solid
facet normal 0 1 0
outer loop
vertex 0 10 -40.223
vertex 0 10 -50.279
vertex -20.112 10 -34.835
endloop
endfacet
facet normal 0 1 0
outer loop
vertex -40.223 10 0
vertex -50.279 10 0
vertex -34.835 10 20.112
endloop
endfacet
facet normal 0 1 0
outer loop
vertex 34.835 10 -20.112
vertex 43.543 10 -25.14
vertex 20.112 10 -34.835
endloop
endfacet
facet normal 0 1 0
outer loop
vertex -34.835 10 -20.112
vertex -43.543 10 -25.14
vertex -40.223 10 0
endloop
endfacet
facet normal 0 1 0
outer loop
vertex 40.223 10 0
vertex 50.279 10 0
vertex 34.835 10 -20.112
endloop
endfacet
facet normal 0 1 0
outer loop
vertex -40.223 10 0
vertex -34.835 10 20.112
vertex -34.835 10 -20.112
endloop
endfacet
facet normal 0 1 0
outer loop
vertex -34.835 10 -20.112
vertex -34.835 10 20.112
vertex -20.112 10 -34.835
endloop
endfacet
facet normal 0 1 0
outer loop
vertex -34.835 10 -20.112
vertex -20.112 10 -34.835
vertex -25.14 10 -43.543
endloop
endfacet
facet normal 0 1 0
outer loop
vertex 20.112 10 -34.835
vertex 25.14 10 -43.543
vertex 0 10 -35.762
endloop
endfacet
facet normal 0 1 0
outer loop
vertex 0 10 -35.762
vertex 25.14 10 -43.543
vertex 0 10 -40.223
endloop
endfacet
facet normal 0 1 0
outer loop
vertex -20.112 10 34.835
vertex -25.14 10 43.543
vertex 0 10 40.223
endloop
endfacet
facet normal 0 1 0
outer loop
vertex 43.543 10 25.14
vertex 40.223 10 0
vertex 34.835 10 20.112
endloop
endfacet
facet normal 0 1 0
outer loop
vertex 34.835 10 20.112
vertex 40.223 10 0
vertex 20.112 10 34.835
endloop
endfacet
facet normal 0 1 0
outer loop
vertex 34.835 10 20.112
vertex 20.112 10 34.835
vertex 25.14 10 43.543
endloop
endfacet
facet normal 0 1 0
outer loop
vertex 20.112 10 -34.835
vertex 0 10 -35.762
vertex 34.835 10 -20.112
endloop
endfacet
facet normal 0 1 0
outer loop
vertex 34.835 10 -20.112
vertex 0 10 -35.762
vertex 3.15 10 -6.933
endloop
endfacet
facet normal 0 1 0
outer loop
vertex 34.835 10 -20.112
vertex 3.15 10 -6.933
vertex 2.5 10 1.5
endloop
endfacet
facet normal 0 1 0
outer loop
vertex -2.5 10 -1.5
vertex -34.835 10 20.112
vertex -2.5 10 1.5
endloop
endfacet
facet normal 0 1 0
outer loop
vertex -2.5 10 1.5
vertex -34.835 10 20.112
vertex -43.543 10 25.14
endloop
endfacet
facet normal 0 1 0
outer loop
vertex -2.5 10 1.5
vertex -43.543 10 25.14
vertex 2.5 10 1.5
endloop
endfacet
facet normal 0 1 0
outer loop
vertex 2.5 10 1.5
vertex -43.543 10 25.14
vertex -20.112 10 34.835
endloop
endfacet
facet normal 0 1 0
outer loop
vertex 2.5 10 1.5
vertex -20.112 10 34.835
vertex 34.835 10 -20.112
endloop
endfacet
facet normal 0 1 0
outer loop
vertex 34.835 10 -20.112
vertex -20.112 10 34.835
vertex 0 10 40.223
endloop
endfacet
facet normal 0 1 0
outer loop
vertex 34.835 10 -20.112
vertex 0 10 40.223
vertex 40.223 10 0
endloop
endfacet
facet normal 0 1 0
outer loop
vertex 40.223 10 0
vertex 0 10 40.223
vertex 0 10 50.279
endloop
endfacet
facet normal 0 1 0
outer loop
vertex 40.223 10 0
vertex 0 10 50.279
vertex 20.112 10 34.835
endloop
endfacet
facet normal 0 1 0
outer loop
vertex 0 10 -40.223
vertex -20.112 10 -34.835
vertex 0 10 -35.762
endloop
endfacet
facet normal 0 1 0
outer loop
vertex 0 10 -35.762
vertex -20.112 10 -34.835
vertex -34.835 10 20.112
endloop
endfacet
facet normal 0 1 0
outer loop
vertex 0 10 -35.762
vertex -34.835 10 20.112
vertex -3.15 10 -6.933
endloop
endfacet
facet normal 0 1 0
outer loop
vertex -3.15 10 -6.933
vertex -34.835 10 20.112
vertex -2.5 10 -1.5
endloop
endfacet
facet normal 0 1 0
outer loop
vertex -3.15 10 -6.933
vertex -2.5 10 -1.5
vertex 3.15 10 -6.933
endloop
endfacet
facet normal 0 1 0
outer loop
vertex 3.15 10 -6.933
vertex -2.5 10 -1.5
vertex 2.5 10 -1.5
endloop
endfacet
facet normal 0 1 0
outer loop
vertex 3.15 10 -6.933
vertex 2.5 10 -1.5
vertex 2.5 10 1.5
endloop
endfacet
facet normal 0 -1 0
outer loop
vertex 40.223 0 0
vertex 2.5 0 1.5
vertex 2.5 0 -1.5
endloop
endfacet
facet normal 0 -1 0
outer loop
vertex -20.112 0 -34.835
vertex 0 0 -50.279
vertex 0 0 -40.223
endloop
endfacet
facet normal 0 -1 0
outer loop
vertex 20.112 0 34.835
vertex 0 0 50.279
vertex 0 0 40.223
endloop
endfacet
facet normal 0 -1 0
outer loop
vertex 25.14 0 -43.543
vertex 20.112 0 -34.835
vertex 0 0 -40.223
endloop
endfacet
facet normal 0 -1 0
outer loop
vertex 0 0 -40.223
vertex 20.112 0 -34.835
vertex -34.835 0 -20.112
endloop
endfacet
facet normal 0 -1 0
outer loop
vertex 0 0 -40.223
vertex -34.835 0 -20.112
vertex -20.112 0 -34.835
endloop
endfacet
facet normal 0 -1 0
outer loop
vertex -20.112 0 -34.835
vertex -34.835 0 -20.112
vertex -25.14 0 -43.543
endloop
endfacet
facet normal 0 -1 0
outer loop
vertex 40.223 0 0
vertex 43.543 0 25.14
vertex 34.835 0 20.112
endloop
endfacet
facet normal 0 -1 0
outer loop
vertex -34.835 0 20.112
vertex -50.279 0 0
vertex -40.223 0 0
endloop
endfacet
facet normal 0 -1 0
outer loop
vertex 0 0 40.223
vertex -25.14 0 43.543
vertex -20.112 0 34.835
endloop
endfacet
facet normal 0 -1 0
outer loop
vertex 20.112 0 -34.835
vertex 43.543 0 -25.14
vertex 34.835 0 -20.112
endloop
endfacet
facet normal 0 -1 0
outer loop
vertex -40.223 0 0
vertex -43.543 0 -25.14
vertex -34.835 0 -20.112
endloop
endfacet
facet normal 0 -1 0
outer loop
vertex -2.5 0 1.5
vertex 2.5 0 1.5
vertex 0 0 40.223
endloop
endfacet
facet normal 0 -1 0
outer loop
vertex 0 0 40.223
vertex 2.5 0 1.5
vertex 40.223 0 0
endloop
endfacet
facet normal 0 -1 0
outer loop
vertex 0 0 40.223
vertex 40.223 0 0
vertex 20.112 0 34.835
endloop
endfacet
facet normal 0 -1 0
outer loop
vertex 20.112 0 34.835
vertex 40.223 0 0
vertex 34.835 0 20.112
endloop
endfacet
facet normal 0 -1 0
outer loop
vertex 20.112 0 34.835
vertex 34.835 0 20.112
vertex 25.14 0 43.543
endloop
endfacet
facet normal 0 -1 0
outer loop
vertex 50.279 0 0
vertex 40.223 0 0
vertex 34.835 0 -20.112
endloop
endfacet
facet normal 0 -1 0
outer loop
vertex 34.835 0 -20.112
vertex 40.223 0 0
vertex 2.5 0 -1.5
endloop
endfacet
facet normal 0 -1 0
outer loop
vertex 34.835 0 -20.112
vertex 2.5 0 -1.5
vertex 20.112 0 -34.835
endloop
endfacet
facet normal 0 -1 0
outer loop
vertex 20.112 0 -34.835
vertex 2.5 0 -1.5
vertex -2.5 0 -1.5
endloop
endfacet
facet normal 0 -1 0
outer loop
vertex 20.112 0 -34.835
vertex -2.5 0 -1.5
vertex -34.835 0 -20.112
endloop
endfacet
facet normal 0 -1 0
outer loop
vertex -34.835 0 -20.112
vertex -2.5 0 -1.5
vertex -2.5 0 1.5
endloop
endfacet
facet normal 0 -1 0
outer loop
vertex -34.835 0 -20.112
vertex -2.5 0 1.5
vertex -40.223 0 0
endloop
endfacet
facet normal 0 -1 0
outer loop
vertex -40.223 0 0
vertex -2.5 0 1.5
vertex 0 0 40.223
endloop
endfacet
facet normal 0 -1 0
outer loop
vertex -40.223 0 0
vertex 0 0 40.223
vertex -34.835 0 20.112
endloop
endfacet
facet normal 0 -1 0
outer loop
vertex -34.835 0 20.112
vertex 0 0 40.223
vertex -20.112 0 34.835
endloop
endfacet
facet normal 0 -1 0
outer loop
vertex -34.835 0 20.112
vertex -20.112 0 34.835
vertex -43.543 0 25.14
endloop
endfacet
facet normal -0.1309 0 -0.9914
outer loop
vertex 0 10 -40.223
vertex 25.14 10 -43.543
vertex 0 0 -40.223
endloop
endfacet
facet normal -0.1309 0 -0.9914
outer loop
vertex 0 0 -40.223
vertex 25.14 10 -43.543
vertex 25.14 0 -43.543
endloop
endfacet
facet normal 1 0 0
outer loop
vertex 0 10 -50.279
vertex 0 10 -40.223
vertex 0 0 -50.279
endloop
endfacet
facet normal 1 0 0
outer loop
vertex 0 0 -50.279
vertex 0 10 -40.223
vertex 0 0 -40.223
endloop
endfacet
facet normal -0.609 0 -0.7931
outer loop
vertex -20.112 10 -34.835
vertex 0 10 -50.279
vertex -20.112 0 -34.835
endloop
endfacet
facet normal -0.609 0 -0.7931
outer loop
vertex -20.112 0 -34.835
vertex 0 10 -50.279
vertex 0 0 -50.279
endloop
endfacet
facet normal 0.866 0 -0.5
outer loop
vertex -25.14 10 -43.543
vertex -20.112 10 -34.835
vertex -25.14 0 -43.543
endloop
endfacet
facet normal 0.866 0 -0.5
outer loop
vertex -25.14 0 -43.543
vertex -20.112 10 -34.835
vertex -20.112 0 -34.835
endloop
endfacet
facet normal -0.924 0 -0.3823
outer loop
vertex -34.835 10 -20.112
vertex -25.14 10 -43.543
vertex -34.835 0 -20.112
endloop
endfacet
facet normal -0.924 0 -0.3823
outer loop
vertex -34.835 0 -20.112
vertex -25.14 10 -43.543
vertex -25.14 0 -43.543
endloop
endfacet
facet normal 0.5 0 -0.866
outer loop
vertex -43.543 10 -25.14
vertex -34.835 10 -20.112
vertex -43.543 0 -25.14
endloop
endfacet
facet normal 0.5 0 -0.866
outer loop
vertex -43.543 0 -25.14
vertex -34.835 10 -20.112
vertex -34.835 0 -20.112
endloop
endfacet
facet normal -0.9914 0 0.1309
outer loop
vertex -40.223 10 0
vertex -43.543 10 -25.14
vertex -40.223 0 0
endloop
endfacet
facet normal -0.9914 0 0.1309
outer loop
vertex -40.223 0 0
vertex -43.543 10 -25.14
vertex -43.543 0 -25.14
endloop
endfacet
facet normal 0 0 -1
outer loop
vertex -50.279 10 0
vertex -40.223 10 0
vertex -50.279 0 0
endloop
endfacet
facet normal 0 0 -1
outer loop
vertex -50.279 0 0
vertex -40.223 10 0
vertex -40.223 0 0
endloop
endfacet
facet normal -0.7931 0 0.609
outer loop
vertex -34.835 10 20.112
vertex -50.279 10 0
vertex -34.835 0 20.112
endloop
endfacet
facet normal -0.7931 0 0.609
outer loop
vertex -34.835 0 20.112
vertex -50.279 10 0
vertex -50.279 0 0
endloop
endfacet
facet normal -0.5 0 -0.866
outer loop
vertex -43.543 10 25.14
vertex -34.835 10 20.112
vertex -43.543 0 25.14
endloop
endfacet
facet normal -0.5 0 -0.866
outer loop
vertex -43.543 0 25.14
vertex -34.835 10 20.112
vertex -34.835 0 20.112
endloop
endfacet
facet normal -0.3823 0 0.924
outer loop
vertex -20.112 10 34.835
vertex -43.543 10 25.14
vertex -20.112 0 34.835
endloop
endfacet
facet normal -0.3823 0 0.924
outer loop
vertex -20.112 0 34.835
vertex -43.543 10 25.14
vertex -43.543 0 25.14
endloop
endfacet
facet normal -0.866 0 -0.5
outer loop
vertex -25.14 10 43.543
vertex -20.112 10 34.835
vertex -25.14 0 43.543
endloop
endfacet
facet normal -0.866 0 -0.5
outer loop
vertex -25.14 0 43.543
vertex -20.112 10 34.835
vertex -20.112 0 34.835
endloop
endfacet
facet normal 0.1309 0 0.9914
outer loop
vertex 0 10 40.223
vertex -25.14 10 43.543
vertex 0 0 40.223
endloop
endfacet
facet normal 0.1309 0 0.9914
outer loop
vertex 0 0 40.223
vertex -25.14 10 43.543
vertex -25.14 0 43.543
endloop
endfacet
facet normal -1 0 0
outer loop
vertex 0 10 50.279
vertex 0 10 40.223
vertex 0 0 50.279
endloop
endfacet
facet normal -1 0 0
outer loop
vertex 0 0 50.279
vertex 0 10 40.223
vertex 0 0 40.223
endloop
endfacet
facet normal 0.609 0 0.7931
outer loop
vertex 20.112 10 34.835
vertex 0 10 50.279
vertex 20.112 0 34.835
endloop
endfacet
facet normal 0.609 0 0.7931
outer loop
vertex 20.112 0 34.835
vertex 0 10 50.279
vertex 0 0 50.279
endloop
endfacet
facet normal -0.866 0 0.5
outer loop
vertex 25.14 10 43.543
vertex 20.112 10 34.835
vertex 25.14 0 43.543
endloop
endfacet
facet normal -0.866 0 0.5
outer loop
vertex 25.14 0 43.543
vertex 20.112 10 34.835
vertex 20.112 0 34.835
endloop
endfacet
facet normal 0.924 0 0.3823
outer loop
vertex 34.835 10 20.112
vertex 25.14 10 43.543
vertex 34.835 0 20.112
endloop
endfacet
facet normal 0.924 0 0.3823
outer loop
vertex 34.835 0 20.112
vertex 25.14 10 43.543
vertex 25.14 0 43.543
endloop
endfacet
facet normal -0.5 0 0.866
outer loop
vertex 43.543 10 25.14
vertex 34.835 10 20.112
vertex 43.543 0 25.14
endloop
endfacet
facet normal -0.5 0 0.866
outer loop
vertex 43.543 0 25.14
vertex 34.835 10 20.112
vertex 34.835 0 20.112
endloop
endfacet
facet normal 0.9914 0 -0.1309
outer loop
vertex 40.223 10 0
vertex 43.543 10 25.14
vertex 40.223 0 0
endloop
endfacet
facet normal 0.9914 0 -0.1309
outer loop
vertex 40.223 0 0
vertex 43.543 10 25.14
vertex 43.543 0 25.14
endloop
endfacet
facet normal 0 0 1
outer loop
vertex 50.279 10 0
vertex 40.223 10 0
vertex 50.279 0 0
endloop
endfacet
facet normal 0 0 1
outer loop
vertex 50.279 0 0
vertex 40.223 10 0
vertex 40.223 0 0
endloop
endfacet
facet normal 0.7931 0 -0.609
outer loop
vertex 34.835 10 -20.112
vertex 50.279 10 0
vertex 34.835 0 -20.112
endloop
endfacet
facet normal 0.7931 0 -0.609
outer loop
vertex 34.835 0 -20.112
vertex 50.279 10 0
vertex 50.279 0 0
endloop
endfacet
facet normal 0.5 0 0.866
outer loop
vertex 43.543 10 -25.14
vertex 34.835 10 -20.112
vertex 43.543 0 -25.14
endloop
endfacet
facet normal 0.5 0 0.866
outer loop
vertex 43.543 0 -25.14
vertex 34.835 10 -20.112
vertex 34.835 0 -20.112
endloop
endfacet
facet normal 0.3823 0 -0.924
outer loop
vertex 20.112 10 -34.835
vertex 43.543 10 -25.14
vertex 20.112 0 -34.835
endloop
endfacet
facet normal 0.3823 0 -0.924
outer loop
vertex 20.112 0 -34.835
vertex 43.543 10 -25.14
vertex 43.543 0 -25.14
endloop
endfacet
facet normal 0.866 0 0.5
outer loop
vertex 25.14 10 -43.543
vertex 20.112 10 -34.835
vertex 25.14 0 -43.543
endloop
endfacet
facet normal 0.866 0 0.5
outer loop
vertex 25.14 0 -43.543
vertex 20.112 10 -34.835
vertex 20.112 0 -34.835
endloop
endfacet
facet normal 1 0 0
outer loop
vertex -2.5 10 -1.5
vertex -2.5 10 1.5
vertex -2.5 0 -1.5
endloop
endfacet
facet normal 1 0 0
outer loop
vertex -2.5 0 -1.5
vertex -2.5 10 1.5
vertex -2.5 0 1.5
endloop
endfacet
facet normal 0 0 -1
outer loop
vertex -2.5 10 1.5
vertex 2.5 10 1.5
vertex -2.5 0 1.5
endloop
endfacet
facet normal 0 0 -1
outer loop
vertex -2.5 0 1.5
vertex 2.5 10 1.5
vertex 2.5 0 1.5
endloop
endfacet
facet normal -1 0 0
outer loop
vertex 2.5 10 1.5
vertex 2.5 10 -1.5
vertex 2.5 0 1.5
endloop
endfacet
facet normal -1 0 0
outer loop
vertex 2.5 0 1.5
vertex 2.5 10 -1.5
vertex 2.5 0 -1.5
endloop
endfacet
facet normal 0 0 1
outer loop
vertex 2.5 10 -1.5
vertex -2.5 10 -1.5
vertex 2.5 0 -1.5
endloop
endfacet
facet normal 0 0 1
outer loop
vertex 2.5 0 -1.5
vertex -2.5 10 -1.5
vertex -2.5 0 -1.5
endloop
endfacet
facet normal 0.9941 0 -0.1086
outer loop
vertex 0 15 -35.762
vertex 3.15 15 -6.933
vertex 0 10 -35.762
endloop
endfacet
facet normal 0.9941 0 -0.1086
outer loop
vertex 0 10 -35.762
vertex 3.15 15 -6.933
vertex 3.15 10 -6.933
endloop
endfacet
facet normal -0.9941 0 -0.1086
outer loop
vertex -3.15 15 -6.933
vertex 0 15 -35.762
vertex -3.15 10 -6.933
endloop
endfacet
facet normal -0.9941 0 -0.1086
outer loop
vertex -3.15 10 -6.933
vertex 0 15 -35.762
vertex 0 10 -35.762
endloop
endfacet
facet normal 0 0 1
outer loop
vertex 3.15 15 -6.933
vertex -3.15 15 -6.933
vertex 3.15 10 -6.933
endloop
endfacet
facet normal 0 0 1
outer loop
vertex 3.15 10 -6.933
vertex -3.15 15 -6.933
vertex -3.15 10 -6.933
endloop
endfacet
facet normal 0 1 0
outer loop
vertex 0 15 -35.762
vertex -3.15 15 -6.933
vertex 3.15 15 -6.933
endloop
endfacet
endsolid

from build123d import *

# Parameters (mm, degrees)
SKETCH2_W           = 5
SKETCH2_H           = 3
BOSS_EXTRUDE2_DEPTH = 10
BOSS_EXTRUDE3_DEPTH = 5


with BuildPart() as part:
    # Sketch2 → Boss-Extrude2 (new body)
    with BuildSketch(Plane(origin=(0, 0, 0), x_dir=(1, 0, 0), z_dir=(0, 1, 0))):
        Polygon((0, 40.223426607), (0, 50.279283258), (-20.111713303, 34.834509269), (-25.139641629, 43.543136586), (-34.834509269, 20.111713303), (-43.543136586, 25.139641629), (-40.223426607, 0), (-50.279283258, 0), (-34.834509269, -20.111713303), (-43.543136586, -25.139641629), (-20.111713303, -34.834509269), (-25.139641629, -43.543136586), (0, -40.223426607), (0, -50.279283258), (20.111713303, -34.834509269), (25.139641629, -43.543136586), (34.834509269, -20.111713303), (43.543136586, -25.139641629), (40.223426607, 0), (50.279283258, 0), (34.834509269, 20.111713303), (43.543136586, 25.139641629), (20.111713303, 34.834509269), (25.139641629, 43.543136586), align=None)
        Rectangle(SKETCH2_W, SKETCH2_H, mode=Mode.SUBTRACT)
    extrude(amount=BOSS_EXTRUDE2_DEPTH)

    # Sketch3 → Boss-Extrude3 (add)
    with BuildSketch(Plane(origin=(0, 10, 0), x_dir=(1, 0, 0), z_dir=(0, 1, 0))):
        Polygon((0, 35.761861209), (-3.15, 6.933446407), (3.15, 6.933446407), align=None)
    extrude(amount=BOSS_EXTRUDE3_DEPTH)


solid = part.part
